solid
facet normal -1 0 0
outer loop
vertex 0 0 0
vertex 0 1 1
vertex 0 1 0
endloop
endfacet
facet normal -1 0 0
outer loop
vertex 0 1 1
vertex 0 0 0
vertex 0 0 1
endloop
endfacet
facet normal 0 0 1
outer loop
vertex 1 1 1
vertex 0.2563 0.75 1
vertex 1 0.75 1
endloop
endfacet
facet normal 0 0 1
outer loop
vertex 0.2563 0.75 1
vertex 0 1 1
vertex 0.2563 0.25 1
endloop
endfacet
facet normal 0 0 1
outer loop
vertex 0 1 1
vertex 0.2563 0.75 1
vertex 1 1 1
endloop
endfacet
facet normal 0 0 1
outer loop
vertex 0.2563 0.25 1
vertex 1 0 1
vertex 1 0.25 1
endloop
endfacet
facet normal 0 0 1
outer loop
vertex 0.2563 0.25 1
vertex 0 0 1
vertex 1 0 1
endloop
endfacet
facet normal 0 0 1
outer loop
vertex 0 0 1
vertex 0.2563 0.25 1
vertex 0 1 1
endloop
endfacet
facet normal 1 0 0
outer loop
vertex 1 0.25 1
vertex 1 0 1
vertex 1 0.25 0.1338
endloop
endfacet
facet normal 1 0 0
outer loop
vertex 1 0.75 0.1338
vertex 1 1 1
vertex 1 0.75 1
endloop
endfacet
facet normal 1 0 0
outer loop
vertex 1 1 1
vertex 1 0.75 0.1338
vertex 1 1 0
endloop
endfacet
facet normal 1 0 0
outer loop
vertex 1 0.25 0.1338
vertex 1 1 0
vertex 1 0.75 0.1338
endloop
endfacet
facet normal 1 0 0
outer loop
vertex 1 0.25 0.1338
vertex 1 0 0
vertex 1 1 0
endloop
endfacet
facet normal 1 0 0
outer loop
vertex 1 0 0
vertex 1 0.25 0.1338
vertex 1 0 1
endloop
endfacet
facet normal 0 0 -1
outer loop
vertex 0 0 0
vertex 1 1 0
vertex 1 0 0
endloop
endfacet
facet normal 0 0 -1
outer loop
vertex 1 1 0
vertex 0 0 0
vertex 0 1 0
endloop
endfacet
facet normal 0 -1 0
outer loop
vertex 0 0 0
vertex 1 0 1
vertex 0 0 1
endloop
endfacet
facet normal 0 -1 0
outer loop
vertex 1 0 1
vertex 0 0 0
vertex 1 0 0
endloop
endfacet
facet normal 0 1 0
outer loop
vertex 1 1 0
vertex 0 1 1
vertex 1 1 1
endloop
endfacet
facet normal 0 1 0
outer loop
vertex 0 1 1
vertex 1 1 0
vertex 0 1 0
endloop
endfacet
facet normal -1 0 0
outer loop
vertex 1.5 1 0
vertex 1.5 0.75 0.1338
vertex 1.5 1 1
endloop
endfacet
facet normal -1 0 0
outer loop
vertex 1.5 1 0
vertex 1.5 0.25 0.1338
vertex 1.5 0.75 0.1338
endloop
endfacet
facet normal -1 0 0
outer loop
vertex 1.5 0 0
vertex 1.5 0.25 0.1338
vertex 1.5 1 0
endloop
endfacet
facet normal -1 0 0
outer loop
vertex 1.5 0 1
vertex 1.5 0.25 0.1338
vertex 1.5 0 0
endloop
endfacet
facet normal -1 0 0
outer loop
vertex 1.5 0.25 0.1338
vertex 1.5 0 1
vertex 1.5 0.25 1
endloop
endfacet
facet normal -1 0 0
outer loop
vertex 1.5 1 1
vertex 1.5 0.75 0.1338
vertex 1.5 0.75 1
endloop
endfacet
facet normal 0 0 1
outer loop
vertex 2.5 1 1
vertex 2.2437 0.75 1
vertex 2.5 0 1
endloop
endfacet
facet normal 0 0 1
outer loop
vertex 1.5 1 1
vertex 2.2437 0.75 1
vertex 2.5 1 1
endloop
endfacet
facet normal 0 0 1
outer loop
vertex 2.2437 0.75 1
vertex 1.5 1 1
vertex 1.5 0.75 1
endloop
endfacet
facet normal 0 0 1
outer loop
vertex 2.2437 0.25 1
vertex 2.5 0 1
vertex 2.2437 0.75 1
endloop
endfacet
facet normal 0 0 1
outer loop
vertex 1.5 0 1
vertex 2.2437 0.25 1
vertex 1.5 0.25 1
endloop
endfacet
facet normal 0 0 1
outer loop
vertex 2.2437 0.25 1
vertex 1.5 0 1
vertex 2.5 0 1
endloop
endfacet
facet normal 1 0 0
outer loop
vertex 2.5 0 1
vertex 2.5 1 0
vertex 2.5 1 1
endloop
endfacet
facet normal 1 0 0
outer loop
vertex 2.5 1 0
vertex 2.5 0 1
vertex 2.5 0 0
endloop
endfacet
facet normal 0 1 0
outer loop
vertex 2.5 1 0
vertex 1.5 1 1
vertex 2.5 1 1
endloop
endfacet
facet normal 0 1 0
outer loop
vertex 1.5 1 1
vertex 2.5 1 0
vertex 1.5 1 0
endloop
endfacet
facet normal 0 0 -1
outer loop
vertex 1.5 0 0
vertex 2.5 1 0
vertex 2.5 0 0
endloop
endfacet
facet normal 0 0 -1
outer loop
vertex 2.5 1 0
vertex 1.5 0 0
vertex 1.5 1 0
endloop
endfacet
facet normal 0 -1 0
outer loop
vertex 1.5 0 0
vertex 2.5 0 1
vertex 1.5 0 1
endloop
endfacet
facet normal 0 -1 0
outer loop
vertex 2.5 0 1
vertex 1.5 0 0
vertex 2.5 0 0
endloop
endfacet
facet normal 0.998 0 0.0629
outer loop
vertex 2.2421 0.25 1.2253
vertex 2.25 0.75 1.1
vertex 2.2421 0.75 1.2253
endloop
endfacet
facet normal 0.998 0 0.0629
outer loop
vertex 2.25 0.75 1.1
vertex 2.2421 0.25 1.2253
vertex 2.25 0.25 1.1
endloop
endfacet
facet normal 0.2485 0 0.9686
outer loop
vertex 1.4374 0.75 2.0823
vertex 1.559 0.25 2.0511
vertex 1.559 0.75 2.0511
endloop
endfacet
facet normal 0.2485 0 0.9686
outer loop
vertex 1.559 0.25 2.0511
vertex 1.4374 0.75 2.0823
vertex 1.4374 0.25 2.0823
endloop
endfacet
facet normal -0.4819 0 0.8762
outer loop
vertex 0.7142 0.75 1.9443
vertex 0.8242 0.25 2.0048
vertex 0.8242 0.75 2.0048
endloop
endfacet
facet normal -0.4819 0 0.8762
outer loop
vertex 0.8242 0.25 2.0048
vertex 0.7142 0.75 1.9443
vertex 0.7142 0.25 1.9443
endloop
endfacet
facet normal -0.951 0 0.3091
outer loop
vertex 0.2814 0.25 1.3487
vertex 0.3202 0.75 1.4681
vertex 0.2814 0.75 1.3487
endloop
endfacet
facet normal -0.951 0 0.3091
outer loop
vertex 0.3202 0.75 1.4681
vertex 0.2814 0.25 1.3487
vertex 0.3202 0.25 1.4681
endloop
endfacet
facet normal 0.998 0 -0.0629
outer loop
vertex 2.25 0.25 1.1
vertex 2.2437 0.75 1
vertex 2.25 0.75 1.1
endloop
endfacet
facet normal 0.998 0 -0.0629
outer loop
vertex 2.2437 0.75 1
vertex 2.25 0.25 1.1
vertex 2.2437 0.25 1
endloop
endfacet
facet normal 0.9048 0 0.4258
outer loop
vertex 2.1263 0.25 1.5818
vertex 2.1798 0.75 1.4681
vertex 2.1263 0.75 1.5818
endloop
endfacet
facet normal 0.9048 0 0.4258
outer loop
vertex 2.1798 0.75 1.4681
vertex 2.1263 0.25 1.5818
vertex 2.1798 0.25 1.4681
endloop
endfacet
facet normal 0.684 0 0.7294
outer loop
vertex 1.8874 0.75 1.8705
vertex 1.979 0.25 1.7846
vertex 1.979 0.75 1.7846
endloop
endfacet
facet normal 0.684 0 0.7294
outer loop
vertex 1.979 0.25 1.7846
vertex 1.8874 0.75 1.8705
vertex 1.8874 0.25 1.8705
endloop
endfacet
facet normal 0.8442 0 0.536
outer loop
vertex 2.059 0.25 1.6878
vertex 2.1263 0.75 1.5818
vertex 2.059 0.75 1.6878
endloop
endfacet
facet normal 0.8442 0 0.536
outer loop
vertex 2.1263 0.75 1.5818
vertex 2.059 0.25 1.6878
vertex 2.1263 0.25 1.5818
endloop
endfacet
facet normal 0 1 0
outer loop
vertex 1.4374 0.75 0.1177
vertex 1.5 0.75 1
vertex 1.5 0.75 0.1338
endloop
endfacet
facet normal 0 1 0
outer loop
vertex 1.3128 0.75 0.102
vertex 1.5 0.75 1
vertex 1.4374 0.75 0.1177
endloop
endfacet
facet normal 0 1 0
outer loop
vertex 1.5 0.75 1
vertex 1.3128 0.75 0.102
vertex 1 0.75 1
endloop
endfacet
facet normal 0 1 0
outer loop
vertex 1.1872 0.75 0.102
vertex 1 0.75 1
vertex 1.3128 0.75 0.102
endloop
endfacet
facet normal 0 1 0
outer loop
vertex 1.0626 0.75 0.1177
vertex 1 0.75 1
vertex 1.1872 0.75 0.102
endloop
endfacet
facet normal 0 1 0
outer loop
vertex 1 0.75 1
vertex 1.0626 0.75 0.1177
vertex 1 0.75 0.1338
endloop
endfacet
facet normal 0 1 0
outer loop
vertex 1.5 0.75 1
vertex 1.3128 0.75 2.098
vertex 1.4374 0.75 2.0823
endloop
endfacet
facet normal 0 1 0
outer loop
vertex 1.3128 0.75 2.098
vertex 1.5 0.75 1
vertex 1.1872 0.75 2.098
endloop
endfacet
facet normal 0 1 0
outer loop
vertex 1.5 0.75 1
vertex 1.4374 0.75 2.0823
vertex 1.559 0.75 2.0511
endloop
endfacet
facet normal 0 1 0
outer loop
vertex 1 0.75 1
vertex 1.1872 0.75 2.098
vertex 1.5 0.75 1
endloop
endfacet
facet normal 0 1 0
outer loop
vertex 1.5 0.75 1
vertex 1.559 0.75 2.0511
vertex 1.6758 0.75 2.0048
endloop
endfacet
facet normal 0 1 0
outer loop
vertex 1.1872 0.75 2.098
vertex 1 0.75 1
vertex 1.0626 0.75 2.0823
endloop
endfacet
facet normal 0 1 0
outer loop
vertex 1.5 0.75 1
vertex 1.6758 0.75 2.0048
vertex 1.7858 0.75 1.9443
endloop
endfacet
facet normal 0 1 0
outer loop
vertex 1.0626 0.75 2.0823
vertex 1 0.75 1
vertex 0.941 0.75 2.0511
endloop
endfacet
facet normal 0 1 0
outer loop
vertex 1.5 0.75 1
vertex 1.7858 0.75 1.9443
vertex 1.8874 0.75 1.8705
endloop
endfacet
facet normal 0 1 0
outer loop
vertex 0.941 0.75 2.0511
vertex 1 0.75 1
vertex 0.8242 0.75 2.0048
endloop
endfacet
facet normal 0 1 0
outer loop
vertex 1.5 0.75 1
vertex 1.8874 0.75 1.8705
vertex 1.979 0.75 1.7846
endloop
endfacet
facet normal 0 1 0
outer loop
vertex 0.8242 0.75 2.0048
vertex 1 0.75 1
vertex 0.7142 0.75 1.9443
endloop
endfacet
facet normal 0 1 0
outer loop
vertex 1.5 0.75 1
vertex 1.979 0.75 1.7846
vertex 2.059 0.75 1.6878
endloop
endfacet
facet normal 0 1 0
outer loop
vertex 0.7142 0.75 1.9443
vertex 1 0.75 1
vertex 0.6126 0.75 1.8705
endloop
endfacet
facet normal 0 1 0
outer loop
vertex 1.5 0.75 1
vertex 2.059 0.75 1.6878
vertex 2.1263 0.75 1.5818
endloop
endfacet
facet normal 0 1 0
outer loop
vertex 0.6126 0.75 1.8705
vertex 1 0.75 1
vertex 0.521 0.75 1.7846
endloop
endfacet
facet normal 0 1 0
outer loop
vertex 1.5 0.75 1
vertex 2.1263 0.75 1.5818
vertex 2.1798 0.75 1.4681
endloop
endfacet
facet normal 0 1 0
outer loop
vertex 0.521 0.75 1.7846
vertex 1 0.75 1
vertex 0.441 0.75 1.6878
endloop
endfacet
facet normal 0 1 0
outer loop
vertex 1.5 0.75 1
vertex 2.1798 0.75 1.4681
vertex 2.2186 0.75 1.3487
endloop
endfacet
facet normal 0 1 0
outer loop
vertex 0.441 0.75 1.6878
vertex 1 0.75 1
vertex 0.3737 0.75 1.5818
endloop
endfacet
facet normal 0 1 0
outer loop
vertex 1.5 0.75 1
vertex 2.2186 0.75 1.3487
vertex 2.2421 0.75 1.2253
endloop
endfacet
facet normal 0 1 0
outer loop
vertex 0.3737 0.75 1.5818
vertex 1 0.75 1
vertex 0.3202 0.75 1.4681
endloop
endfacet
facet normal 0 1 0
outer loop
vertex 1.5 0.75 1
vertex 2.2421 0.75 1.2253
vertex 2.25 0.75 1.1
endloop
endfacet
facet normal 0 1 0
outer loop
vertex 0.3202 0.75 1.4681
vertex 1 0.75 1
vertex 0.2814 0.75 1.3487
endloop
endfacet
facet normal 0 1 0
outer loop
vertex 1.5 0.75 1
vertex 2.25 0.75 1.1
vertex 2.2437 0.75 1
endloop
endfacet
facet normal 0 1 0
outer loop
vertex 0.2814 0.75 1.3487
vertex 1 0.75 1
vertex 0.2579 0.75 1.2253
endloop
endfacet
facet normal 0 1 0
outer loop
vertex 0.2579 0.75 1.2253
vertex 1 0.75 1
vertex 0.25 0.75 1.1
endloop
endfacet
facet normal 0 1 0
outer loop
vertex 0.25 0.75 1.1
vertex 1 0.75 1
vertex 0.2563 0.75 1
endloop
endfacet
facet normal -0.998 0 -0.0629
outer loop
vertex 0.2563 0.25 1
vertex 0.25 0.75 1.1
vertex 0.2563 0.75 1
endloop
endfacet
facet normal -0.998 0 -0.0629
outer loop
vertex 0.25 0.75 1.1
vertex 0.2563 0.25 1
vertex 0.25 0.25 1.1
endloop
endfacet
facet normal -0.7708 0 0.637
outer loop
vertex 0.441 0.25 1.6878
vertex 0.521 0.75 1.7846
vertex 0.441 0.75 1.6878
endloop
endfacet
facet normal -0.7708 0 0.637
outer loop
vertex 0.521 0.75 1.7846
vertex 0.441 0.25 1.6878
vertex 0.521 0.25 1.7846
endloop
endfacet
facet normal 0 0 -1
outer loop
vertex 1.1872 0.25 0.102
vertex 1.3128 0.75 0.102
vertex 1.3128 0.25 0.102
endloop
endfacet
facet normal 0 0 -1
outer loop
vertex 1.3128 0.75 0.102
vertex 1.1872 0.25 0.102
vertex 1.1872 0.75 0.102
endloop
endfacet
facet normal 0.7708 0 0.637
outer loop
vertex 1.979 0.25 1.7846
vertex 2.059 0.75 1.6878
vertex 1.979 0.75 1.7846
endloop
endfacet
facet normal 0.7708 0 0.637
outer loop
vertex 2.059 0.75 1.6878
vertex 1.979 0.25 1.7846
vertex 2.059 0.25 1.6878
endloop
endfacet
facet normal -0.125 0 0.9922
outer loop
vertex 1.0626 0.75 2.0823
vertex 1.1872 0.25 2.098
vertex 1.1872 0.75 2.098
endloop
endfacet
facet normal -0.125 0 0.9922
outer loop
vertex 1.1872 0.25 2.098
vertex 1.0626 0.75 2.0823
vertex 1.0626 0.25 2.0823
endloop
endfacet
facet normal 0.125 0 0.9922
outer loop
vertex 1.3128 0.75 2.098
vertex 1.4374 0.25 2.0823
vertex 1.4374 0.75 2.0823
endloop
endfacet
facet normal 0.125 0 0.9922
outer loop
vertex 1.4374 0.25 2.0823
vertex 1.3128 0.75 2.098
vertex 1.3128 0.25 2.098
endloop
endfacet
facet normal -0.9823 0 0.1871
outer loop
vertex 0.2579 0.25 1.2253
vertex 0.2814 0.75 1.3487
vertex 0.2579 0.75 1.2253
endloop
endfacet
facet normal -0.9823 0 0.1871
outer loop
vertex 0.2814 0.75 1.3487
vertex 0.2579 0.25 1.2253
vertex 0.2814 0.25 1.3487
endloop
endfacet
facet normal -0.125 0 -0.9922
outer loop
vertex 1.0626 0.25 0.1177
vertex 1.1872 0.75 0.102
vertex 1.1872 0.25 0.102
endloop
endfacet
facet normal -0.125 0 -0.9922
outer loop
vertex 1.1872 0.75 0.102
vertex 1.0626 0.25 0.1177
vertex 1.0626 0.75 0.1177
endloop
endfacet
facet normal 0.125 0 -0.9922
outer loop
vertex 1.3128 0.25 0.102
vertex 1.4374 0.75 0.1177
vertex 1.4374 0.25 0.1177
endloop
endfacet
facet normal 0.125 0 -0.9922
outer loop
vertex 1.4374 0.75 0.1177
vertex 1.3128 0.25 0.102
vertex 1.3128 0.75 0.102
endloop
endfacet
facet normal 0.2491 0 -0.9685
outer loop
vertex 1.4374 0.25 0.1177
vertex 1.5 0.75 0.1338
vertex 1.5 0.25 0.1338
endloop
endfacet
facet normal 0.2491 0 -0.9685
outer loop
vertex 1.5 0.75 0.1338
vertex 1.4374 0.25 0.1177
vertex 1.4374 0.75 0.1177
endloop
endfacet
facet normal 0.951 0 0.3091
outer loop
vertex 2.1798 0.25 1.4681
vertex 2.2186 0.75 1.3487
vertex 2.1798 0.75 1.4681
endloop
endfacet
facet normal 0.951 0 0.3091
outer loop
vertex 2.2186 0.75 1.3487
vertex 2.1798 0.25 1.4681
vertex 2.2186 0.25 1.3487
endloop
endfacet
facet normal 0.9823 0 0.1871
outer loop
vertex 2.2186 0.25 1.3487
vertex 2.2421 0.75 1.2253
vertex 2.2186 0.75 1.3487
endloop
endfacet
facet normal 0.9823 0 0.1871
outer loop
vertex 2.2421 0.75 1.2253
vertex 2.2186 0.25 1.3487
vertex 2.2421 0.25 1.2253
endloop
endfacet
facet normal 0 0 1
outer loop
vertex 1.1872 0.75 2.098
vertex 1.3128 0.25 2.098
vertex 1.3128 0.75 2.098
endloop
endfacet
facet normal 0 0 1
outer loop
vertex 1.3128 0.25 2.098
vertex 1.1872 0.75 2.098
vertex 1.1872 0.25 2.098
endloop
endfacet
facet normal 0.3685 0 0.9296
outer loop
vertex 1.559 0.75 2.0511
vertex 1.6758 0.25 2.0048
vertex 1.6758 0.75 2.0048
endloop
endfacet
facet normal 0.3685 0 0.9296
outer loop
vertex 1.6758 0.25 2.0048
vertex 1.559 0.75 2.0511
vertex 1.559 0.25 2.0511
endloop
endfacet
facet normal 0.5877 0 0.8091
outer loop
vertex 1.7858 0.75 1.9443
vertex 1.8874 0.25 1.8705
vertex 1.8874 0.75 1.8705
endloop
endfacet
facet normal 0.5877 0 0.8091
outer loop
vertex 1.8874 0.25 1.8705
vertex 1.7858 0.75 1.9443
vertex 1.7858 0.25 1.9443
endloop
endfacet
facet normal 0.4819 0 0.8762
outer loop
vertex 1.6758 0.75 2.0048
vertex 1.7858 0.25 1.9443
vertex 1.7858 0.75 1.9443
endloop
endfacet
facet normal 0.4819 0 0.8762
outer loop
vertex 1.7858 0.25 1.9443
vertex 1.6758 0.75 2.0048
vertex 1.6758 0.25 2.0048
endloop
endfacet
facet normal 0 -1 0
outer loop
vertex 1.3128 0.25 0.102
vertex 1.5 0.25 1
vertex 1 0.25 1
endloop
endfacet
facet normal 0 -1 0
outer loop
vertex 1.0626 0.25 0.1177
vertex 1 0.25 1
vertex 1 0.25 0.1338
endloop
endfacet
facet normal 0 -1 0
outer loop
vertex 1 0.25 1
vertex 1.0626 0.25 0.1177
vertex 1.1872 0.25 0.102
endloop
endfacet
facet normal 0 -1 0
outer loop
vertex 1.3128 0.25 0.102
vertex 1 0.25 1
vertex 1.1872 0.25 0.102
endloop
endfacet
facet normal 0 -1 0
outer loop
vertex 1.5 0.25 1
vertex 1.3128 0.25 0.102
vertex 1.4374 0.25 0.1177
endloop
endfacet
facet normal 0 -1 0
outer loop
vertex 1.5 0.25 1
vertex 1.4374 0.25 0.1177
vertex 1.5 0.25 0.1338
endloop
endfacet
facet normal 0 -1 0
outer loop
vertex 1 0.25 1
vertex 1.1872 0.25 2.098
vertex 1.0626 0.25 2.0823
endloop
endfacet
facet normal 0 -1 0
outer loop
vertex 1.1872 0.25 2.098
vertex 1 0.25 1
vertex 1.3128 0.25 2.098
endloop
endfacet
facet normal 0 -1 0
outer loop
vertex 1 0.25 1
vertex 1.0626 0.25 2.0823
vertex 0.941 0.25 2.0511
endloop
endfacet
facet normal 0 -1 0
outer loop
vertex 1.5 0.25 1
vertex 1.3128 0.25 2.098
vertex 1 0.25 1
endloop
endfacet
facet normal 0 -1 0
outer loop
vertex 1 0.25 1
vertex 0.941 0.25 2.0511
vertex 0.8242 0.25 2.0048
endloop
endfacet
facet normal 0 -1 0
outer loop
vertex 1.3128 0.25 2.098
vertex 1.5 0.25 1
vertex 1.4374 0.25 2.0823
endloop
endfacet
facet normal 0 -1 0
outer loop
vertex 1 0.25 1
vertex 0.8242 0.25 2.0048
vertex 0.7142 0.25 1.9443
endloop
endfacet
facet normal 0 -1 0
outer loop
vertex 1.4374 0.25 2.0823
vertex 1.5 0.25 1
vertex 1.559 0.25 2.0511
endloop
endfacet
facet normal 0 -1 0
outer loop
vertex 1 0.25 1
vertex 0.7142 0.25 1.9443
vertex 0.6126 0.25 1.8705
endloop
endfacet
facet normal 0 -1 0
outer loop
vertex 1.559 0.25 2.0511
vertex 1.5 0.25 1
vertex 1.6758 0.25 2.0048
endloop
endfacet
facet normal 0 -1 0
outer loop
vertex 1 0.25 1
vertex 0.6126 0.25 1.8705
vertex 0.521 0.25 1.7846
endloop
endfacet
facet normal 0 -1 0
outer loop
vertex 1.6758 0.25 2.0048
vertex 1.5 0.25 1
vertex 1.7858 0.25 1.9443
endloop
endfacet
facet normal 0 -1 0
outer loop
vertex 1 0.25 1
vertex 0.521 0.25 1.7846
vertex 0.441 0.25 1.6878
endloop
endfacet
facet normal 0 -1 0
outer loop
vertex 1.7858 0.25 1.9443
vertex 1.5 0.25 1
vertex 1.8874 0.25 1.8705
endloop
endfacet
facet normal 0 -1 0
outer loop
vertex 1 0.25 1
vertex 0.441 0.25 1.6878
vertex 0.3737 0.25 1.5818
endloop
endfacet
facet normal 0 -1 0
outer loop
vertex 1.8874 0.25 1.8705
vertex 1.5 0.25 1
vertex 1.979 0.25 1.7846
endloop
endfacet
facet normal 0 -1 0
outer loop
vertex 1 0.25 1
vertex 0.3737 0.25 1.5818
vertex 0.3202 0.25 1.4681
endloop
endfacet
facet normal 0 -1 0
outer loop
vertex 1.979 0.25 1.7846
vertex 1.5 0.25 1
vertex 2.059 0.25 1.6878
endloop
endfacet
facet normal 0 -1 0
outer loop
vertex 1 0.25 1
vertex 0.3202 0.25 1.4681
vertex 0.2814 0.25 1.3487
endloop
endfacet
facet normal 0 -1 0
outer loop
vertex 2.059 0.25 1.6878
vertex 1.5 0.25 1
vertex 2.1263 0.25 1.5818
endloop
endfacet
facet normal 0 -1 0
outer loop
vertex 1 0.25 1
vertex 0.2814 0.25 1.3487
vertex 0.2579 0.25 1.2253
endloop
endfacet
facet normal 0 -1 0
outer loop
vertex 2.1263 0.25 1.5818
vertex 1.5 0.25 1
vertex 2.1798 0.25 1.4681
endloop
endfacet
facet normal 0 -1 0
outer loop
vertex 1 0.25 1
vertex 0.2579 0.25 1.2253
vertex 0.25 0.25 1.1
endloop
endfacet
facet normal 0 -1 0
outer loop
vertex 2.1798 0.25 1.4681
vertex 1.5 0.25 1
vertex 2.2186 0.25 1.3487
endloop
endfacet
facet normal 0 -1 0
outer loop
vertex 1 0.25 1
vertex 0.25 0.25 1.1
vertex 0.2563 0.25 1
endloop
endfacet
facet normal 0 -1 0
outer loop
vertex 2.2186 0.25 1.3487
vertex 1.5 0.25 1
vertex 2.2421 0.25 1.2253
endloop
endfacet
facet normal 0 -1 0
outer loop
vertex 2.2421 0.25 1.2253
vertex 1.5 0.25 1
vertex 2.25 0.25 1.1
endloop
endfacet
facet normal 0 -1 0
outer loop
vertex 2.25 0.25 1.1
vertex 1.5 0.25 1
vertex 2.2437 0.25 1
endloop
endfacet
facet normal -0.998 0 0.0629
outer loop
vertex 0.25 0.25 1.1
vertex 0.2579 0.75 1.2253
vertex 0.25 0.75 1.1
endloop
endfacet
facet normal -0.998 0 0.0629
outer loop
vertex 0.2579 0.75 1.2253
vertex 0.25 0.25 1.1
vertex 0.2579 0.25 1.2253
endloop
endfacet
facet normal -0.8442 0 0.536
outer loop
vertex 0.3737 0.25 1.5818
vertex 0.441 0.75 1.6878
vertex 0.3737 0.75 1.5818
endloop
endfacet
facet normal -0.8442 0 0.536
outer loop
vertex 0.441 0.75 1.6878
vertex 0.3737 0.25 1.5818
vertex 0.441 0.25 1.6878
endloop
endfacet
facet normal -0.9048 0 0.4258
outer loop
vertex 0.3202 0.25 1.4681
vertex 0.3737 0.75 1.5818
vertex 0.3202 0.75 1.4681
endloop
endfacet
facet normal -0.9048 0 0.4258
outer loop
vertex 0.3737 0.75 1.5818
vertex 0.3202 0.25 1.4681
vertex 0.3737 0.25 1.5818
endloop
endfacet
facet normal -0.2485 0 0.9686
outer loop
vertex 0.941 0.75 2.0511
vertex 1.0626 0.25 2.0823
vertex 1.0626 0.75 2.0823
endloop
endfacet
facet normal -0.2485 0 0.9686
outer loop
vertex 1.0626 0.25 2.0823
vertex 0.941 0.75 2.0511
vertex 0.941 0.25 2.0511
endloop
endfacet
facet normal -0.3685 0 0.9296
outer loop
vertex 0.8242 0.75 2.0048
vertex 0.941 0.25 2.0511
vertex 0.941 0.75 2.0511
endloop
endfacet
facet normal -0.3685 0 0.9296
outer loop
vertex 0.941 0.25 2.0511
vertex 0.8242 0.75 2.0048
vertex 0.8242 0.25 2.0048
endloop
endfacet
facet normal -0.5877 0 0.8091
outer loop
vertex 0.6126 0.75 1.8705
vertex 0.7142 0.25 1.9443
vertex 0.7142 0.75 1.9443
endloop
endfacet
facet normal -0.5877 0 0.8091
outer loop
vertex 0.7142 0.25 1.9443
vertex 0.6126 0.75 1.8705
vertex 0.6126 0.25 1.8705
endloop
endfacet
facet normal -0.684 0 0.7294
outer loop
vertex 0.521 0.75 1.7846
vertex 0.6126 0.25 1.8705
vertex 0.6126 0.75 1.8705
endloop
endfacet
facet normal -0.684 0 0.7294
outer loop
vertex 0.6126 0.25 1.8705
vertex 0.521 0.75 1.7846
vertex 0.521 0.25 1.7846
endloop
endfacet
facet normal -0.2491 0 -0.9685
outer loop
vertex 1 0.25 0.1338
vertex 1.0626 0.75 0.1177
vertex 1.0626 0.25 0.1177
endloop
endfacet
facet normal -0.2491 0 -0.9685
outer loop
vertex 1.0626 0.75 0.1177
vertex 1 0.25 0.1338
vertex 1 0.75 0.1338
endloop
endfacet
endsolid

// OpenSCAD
// Generated by SolidPython 1.1.1 on 2021-10-28 00:12:23
$fn = 50;


union() {
	cube();
	translate(v = [1.5000000000, 0, 0]) {
		cube();
	}
	translate(v = [1.2500000000, 0.7500000000, 1.1000000000]) {
		rotate(a = [90, 0, 0]) {
			cylinder(h = 0.5000000000, r = 1);
		}
	}
}
/***********************************************
*********      SolidPython code:      **********
************************************************
 
# SolidPython example code 
# Brygg Ullmer, Clemson University

from solid import *        # load in SolidPython/SCAD support code

c1 = cube()
c2 = translate([1.5, 0, 0])(c1)
outGeom = c1 + c2

y1 = cylinder(r=1, h=.5)
y2 = rotate([90,0,0])(y1)
y3 = translate([1.25,.75,1.1])(y2)
outGeom += y3

radialSegments = 50; hdr = '$fn = %s;' % radialSegments # create a header for the export
scad_render_to_file(outGeom, 'exSolid04.scad', file_header=hdr) # write the .scad file

### end ###

 
 
************************************************/
